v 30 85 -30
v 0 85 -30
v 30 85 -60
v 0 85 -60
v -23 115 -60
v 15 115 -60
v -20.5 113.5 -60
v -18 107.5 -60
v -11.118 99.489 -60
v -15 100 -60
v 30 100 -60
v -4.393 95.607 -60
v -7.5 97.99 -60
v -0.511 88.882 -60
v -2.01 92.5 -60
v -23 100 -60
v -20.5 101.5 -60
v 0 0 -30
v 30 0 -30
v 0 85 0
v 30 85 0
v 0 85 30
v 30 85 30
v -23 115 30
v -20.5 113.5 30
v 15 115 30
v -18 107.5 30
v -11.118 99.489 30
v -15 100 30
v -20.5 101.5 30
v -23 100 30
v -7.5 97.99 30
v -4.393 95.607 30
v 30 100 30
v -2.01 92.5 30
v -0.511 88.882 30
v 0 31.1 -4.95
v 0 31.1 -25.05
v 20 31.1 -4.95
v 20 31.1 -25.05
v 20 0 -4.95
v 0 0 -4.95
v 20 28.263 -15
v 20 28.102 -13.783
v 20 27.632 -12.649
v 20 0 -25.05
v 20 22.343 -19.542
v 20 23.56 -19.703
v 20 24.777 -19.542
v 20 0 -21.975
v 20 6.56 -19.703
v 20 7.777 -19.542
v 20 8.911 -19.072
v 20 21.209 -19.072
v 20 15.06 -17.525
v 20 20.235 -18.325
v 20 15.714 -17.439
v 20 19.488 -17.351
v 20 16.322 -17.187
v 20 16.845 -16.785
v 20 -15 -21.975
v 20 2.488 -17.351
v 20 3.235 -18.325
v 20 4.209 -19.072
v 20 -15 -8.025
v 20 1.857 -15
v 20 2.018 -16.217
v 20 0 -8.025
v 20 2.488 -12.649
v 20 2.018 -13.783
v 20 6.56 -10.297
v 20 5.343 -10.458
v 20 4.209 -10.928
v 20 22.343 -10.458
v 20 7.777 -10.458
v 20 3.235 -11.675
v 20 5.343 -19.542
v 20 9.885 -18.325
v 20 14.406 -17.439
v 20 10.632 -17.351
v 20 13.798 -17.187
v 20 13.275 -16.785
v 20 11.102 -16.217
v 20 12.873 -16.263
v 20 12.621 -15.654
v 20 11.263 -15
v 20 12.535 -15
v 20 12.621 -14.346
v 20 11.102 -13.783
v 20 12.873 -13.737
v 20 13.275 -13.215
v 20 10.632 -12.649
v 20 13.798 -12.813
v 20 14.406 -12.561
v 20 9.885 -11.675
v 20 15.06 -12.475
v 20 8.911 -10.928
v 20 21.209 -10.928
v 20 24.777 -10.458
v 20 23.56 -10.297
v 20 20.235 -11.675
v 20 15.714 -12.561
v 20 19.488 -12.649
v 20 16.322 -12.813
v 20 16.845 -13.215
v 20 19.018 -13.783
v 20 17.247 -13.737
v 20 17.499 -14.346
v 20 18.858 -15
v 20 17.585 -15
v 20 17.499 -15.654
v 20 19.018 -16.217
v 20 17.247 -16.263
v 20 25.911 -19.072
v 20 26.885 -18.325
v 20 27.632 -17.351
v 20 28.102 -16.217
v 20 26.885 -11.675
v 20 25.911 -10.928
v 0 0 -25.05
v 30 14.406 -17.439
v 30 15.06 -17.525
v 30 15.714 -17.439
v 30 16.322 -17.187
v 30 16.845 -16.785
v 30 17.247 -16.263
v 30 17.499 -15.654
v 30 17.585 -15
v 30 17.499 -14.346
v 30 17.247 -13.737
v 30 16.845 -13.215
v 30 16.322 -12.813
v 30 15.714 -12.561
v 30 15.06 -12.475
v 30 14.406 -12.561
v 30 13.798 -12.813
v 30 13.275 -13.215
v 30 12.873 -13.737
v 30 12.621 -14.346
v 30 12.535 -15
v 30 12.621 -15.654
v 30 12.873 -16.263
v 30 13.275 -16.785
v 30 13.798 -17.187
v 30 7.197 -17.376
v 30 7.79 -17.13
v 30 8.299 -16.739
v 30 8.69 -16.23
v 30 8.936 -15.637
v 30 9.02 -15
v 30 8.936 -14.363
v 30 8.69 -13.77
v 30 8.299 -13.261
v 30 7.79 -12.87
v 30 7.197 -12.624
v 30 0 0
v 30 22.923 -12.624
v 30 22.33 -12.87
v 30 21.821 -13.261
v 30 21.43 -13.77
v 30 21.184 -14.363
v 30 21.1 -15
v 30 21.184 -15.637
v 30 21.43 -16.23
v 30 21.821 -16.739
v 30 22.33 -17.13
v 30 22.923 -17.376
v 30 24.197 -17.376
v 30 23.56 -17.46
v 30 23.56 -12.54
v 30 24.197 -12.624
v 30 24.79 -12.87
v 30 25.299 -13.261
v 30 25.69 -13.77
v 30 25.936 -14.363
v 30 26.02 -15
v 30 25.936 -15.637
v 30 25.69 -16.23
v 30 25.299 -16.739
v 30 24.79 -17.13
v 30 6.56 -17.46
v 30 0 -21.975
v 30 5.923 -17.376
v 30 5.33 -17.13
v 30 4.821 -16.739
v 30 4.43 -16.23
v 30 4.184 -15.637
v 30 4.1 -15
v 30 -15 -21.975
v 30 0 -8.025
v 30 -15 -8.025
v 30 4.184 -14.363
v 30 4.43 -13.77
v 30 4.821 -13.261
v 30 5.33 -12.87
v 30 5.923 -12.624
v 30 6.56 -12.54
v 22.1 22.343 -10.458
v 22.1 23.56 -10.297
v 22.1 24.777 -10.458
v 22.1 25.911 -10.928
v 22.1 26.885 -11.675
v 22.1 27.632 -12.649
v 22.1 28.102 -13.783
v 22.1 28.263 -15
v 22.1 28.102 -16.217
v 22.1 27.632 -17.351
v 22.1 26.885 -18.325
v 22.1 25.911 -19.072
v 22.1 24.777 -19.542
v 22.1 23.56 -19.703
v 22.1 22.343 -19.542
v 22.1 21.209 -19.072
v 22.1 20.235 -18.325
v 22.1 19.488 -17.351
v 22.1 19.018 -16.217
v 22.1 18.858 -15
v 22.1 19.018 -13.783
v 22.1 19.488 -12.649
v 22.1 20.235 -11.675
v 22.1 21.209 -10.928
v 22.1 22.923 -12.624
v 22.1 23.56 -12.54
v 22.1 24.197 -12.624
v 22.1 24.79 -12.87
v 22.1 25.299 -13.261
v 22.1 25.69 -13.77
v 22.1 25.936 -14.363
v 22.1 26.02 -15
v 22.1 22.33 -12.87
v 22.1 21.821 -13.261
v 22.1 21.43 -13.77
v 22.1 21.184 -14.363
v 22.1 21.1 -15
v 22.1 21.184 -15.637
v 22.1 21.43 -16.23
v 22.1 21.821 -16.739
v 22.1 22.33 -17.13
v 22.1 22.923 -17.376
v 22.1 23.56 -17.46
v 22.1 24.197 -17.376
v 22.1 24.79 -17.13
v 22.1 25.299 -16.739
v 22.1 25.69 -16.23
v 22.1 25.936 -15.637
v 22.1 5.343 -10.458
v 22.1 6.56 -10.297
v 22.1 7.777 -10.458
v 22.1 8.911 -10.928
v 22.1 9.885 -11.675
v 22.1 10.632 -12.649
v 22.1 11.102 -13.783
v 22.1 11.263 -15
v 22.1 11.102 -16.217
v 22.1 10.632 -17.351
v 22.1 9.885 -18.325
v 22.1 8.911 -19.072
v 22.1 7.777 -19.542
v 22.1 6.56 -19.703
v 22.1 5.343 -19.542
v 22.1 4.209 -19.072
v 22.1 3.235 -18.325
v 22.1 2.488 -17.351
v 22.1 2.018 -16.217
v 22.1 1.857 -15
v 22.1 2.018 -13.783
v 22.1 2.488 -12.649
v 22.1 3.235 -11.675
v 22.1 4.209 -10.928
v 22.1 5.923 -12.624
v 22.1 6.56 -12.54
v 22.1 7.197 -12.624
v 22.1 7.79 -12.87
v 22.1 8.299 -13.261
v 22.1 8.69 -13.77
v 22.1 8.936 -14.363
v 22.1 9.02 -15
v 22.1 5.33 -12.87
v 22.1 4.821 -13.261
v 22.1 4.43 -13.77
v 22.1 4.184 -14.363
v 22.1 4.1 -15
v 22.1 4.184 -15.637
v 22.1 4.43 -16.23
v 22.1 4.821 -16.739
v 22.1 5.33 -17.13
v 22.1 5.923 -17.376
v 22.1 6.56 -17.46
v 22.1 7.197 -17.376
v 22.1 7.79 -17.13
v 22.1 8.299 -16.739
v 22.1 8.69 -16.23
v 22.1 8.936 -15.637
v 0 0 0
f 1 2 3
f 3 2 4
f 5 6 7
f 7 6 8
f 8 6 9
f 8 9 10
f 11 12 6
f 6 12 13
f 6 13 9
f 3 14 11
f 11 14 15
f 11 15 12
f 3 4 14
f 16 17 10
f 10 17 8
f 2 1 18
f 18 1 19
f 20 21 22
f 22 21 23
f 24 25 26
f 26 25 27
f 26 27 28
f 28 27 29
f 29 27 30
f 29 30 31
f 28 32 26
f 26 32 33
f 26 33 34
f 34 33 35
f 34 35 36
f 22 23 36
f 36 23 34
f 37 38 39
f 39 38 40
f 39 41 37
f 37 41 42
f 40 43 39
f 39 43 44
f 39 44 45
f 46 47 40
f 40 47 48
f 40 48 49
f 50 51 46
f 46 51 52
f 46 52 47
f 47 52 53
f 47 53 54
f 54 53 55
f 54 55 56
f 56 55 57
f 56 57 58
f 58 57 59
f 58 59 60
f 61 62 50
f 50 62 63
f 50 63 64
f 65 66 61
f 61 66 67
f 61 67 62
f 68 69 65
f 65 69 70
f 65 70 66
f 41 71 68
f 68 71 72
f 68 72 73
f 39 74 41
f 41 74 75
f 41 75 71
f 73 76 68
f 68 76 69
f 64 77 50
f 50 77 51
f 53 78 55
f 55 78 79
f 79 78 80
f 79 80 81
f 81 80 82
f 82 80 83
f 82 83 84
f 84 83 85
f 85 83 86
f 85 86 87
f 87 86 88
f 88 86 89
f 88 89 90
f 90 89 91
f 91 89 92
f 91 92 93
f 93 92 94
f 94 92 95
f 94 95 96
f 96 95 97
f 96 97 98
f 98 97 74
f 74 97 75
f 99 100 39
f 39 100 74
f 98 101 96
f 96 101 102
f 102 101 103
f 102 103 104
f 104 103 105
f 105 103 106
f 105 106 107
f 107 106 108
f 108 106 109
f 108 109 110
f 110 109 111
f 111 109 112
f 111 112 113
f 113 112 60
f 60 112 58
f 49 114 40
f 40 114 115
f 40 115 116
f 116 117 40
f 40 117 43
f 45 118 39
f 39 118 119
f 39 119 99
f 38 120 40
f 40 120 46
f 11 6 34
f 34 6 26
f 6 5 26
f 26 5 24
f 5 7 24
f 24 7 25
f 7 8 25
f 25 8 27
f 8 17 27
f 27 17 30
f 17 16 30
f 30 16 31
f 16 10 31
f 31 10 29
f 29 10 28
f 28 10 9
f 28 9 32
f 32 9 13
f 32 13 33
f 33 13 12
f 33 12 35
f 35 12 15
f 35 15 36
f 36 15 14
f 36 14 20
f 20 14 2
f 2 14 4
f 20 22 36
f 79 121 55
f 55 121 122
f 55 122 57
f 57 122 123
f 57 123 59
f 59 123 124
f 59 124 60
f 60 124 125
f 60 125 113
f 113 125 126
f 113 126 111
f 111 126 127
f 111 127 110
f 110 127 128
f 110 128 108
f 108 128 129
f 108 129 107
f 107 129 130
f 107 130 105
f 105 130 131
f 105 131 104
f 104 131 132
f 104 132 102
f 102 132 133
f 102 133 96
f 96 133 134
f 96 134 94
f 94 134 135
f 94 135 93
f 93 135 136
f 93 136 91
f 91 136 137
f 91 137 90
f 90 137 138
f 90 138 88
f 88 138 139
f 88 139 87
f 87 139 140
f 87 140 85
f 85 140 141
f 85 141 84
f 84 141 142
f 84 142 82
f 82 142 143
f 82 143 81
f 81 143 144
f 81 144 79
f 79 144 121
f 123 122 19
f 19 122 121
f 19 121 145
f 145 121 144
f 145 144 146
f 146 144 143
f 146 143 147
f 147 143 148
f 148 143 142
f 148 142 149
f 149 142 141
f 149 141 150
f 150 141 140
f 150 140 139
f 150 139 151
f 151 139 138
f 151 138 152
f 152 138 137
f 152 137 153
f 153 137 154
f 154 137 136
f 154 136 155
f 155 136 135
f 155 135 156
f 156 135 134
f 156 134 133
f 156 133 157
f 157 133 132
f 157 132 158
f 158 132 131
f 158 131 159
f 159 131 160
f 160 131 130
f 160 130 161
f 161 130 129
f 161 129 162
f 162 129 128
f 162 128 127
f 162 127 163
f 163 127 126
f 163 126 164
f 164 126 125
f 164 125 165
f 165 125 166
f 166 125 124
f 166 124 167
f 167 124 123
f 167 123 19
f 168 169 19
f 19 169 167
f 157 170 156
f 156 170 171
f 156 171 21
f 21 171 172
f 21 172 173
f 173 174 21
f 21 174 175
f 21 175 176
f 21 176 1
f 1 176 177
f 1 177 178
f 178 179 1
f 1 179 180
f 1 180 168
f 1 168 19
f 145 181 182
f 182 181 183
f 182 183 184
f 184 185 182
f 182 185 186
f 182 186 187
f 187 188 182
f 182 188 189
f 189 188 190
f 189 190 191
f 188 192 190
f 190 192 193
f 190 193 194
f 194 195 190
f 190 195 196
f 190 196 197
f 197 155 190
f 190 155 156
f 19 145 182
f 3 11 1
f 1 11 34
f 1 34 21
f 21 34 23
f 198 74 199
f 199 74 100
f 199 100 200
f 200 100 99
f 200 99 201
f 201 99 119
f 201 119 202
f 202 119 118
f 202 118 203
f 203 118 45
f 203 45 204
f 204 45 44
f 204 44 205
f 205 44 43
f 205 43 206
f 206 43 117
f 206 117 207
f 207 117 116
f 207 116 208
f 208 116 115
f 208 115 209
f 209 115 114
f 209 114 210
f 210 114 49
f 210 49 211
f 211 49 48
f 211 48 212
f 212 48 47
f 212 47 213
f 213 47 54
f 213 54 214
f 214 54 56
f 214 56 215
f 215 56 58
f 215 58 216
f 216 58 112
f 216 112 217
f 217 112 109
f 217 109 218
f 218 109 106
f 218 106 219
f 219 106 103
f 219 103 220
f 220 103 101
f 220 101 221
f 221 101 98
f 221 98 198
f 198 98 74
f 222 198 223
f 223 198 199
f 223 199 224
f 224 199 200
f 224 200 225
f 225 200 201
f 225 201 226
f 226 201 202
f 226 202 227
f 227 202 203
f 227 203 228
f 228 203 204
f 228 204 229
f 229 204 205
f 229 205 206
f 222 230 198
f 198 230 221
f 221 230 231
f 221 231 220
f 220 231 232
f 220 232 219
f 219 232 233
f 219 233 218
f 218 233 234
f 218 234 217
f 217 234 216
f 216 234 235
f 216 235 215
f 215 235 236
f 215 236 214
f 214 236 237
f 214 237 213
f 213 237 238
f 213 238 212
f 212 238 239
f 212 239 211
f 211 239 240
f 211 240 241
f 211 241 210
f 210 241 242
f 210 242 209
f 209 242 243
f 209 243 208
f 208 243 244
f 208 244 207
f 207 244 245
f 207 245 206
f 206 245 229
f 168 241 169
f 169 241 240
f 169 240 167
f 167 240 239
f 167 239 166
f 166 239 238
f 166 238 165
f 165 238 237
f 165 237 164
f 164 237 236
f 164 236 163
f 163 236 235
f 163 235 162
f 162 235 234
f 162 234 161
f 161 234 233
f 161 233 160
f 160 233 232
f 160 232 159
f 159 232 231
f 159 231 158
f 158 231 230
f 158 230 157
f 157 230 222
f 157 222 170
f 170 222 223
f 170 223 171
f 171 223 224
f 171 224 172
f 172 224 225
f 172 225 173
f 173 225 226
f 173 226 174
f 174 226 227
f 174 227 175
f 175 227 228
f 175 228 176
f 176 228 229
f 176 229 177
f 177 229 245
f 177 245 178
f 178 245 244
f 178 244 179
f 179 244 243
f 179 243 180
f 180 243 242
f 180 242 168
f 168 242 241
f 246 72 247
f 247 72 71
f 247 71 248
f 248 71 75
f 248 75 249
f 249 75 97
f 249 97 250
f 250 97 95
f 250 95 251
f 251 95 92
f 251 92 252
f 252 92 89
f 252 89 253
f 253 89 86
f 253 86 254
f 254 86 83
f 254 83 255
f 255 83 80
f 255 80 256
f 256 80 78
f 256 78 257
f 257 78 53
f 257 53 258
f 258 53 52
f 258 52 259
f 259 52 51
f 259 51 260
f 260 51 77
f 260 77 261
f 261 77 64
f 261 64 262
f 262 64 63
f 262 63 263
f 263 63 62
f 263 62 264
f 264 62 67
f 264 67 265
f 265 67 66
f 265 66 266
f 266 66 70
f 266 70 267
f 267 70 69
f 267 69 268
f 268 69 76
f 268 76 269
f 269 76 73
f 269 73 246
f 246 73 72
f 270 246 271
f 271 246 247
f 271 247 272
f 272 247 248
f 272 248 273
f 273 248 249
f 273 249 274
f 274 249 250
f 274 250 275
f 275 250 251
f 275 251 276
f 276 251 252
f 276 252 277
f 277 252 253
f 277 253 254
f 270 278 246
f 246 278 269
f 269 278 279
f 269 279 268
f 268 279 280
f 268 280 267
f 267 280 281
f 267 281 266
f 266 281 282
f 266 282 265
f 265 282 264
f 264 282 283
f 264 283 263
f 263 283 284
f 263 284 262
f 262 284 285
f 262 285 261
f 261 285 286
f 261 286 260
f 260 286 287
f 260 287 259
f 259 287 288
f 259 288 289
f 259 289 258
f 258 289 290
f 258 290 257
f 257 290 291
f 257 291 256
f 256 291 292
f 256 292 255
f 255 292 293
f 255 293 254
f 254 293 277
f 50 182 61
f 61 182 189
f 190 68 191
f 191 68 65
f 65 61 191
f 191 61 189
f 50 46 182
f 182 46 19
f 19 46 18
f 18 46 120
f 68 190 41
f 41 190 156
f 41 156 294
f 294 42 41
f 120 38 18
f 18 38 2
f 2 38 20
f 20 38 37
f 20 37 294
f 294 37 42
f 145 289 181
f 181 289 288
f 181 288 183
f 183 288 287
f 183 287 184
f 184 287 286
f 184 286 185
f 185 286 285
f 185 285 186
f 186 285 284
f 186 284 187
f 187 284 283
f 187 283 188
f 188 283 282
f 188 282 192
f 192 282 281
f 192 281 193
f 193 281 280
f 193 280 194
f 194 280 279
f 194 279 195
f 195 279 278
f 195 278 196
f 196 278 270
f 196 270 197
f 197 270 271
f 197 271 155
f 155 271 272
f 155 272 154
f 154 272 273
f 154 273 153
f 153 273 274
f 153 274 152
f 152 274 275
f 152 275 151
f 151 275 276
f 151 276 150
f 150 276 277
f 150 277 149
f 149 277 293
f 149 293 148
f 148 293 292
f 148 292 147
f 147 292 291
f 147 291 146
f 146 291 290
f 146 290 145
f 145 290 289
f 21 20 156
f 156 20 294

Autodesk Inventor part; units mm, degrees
ref_plane "YZ Plane" through (0, 0, 0) normal (1, 0, 0) x (0, 1, 0)
ref_plane "XZ Plane" through (0, 0, 0) normal (0, 1, 0) x (-1, 0, 0)
sketch "Sketch1" plane through (0, 0, 0) normal (0, 0, 1) x (1, 0, 0)
  line L0 (0, 0) -> (25, 0)
  line L1 (25, 0) -> (25, 40)
  line L2 (25, 40) -> (0, 40)
  line L3 (0, 40) -> (0, 0)
  dimension "d1" = 25
  dimension "d2" = 40
  dimension "d3" = 25
extrude "Extrusion1" add sketch "Sketch1" against normal blind 30
sketch "Sketch2" plane through (25, 0, 0) normal (1, 0, 0) x (0, 0, -1)
  line L0 (0, 0) -> (30, 0) projected
  circle A0 centre (15, 6.56) radius 2.46
extrude "Extrusion2" cut sketch "Sketch2" against normal blind 30
sketch "Sketch3" plane through (0, 0, 0) normal (-1, 0, 0) x (0, 0, 1)
  line L0 (0, 0) -> (-30, 0) projected
  line L1 (-25.05, 0) -> (-4.95, 0)
  line L2 (-4.95, 0) -> (-4.95, 33.12)
  line L3 (-4.95, 33.12) -> (-25.05, 33.12)
  line L4 (-25.05, 33.12) -> (-25.05, 0)
  dimension "d11" = 20.1
extrude "Extrusion3" cut sketch "Sketch3" against normal blind 20
sketch "Sketch4" plane through (0, 0, 0) normal (0, -1, 0) x (1, 0, 0)
  line L0 (20, -4.95) -> (20, -25.05) projected
  line L1 (20, -15) -> (25, -15)
  line L2 (25, 0) -> (25, -30) projected
  line L3 (20, -8.025) -> (25, -8.025)
  line L4 (25, -8.025) -> (25, -21.975)
  line L5 (25, -21.975) -> (20, -21.975)
  line L6 (20, -21.975) -> (20, -8.025)
  line L7 (20, -8.025) -> (25, -21.975) construction
  line L8 (25, -8.025) -> (20, -21.975) construction
  line L9 (25, -12.54) -> (25, -17.46) projected
  point P0 (0, 0)
  point P1 (22.5, -15)
  dimension "d14" = 13.95
extrude "Extrusion4" add sketch "Sketch4" along normal blind 15
sketch "Sketch5" plane through (20, 0, 0) normal (-1, 0, 0) x (0, 0, 1)
  circle A0 centre (-15, 6.56) radius 2.46 projected
  circle A1 centre (-15, 6.56) radius 4.7025
  circle A2 centre (-15, 6.56) radius 2.46 projected
  circle A3 centre (-15, 6.56) radius 2.46
  point P0 (0, 0)
  dimension "d17" = 9.405
extrude "Extrusion5" cut sketch "Sketch5" against normal blind 2.1
sketch "Sketch6" plane through (25, 0, 0) normal (1, 0, 0) x (0, 0, -1)
  circle A0 centre (15, 6.56) radius 4.7025 projected
  line L0 (15, 6.56) -> (15, 23.56)
  circle A1 centre (15, 23.56) radius 2.46
  point P0 (0, 0)
  dimension "d20" = 17
  dimension "d21" = 4.92
extrude "Extrusion6" cut sketch "Sketch6" against normal blind 10 contours A1
sketch "Sketch7" plane through (20, 0, 0) normal (-1, 0, 0) x (0, 0, 1)
  circle A0 centre (-15, 23.56) radius 2.46 projected
  circle A1 centre (-15, 23.56) radius 4.7025
  point P0 (0, 0)
  dimension "d24" = 9.405
extrude "Extrusion7" cut sketch "Sketch7" against normal blind 2.1
sketch "Sketch9" plane through (25, 0, 0) normal (1, 0, 0) x (0, 0, -1)
  circle A0 centre (15, 6.56) radius 2.46 projected
  circle A1 centre (15, 6.56) radius 2.46
  circle A2 centre (15, 23.56) radius 2.46 projected
  circle A3 centre (15, 23.56) radius 2.46
  line L0 (30, 40) -> (30, 0) projected
  line L1 (30, 0) -> (30, 40)
  line L2 (30, 40) -> (0, 40)
  line L3 (0, 40) -> (0, 0)
  line L4 (0, 0) -> (8.025, 0) projected
  line L5 (21.975, 0) -> (21.975, -15)
  line L6 (21.975, -15) -> (8.025, -15)
  line L7 (8.025, -15) -> (8.025, 0)
  line L8 (0, 0) -> (8.025, 0)
  line L9 (21.975, 0) -> (30, 0)
extrude "Extrusion8" add sketch "Sketch9" along normal blind 5
sketch "Sketch10" plane through (0, 40, 0) normal (0, 1, 0) x (1, 0, 0)
  line L0 (0, 30) -> (30, 30) projected
  line L1 (30, 0) -> (0, 0) projected
  line L2 (0, 30) -> (30, 30)
  line L3 (30, 30) -> (30, 0)
  line L4 (30, 0) -> (0, 0)
  line L5 (0, 0) -> (0, 30)
extrude "Extrusion9" add sketch "Sketch10" along normal blind 30
sketch "Sketch12" plane through (30, 0, 0) normal (1, 0, 0) x (0, 0, -1)
  circle A0 centre (15, 6.56) radius 2.46 projected
  line L0 (15, 6.56) -> (15, 15.06)
  circle A1 centre (15, 15.06) radius 2.525
  point P0 (0, 0)
  dimension "d31" = 8.5
  dimension "d33" = 5.05
extrude "Extrusion10" cut sketch "Sketch12" against normal blind 30 contours A1
sketch "Sketch14" plane through (0, 0, 0) normal (0, 0, 1) x (1, 0, 0)
  line L0 (30, 70) -> (0, 70) projected
  line L1 (0, 70) -> (0, 85)
  line L2 (-15, 100) -> (-23, 100)
  line L3 (30, 100) -> (15, 115)
  line L4 (-23, 115) -> (15, 115)
  line L5 (30, 0) -> (30, 70) projected
  line L6 (30, 100) -> (30, 70)
  line L7 (-20.5, 113.5) -> (-23, 115)
  line L8 (-20.5, 101.5) -> (-23, 100)
  line L9 (-18, 107.5) -> (-20.5, 101.5)
  line L10 (-18, 107.5) -> (-20.5, 113.5)
  arc A0 (0, 85) -> (-15, 100) centre (-15, 85) ccw
  point P0 (0, 0)
  point P1 (0, 100)
  dimension "d47" = 30
  dimension "d49" = 15
  dimension "d54" = 15
extrude "Extrusion12" add sketch "Sketch14" against normal blind 30
sketch "Sketch15" plane through (0, 0, -25.05) normal (-1, 0, 0) x (0, 0, 1)
  line L0 (0, 33.12) -> (20.1, 33.12) projected
  line L1 (20.1, 33.12) -> (20.1, 0) projected
  line L2 (0, 33.12) -> (20.1, 33.12)
  line L3 (20.1, 33.12) -> (20.1, 31.1)
  line L4 (20.1, 31.1) -> (0, 31.1)
  line L5 (0, 31.1) -> (0, 33.12)
  point P0 (25.05, 0)
  dimension "d57" = 2.02
extrude "Extrusion13" add sketch "Sketch15" against normal blind 20
sketch "Sketch17" plane through (0, 0, 0) normal (0, 0, 1) x (1, 0, 0)
  line L0 (-23, 115) -> (15, 115) projected
  line L1 (-23, 115) -> (15, 115)
  line L2 (30, 0) -> (30, 100) projected
  line L3 (15, 115) -> (30, 100)
  line L4 (30, 100) -> (30, 85)
  arc A0 (0, 85) -> (-15, 100) centre (-15, 85) ccw projected
  line L5 (30, 85) -> (0, 85)
  arc A1 (0, 85) -> (-15, 100) centre (-15, 85) ccw
  line L6 (-15, 100) -> (-23, 100) projected
  line L7 (-15, 100) -> (-23, 100)
  line L8 (-23, 100) -> (-20.5, 101.5) projected
  line L9 (-23, 100) -> (-20.5, 101.5)
  line L10 (-20.5, 101.5) -> (-18, 107.5) projected
  line L11 (-20.5, 101.5) -> (-18, 107.5)
  line L12 (-18, 107.5) -> (-20.5, 113.5) projected
  line L13 (-18, 107.5) -> (-20.5, 113.5)
  line L14 (-20.5, 113.5) -> (-23, 115)
  point P0 (0, 0)
extrude "Extrusion14" add sketch "Sketch17" along normal blind 30
ref_plane "Work Plane1" through (0, 0, -15) normal (0, 0, 1) x (1, 0, 0)
mirror "Mirror1" about plane through (0, 0, -15) normal (0, 0, 1) of "Extrusion14"
properties part number "12mm_x_90mm"
